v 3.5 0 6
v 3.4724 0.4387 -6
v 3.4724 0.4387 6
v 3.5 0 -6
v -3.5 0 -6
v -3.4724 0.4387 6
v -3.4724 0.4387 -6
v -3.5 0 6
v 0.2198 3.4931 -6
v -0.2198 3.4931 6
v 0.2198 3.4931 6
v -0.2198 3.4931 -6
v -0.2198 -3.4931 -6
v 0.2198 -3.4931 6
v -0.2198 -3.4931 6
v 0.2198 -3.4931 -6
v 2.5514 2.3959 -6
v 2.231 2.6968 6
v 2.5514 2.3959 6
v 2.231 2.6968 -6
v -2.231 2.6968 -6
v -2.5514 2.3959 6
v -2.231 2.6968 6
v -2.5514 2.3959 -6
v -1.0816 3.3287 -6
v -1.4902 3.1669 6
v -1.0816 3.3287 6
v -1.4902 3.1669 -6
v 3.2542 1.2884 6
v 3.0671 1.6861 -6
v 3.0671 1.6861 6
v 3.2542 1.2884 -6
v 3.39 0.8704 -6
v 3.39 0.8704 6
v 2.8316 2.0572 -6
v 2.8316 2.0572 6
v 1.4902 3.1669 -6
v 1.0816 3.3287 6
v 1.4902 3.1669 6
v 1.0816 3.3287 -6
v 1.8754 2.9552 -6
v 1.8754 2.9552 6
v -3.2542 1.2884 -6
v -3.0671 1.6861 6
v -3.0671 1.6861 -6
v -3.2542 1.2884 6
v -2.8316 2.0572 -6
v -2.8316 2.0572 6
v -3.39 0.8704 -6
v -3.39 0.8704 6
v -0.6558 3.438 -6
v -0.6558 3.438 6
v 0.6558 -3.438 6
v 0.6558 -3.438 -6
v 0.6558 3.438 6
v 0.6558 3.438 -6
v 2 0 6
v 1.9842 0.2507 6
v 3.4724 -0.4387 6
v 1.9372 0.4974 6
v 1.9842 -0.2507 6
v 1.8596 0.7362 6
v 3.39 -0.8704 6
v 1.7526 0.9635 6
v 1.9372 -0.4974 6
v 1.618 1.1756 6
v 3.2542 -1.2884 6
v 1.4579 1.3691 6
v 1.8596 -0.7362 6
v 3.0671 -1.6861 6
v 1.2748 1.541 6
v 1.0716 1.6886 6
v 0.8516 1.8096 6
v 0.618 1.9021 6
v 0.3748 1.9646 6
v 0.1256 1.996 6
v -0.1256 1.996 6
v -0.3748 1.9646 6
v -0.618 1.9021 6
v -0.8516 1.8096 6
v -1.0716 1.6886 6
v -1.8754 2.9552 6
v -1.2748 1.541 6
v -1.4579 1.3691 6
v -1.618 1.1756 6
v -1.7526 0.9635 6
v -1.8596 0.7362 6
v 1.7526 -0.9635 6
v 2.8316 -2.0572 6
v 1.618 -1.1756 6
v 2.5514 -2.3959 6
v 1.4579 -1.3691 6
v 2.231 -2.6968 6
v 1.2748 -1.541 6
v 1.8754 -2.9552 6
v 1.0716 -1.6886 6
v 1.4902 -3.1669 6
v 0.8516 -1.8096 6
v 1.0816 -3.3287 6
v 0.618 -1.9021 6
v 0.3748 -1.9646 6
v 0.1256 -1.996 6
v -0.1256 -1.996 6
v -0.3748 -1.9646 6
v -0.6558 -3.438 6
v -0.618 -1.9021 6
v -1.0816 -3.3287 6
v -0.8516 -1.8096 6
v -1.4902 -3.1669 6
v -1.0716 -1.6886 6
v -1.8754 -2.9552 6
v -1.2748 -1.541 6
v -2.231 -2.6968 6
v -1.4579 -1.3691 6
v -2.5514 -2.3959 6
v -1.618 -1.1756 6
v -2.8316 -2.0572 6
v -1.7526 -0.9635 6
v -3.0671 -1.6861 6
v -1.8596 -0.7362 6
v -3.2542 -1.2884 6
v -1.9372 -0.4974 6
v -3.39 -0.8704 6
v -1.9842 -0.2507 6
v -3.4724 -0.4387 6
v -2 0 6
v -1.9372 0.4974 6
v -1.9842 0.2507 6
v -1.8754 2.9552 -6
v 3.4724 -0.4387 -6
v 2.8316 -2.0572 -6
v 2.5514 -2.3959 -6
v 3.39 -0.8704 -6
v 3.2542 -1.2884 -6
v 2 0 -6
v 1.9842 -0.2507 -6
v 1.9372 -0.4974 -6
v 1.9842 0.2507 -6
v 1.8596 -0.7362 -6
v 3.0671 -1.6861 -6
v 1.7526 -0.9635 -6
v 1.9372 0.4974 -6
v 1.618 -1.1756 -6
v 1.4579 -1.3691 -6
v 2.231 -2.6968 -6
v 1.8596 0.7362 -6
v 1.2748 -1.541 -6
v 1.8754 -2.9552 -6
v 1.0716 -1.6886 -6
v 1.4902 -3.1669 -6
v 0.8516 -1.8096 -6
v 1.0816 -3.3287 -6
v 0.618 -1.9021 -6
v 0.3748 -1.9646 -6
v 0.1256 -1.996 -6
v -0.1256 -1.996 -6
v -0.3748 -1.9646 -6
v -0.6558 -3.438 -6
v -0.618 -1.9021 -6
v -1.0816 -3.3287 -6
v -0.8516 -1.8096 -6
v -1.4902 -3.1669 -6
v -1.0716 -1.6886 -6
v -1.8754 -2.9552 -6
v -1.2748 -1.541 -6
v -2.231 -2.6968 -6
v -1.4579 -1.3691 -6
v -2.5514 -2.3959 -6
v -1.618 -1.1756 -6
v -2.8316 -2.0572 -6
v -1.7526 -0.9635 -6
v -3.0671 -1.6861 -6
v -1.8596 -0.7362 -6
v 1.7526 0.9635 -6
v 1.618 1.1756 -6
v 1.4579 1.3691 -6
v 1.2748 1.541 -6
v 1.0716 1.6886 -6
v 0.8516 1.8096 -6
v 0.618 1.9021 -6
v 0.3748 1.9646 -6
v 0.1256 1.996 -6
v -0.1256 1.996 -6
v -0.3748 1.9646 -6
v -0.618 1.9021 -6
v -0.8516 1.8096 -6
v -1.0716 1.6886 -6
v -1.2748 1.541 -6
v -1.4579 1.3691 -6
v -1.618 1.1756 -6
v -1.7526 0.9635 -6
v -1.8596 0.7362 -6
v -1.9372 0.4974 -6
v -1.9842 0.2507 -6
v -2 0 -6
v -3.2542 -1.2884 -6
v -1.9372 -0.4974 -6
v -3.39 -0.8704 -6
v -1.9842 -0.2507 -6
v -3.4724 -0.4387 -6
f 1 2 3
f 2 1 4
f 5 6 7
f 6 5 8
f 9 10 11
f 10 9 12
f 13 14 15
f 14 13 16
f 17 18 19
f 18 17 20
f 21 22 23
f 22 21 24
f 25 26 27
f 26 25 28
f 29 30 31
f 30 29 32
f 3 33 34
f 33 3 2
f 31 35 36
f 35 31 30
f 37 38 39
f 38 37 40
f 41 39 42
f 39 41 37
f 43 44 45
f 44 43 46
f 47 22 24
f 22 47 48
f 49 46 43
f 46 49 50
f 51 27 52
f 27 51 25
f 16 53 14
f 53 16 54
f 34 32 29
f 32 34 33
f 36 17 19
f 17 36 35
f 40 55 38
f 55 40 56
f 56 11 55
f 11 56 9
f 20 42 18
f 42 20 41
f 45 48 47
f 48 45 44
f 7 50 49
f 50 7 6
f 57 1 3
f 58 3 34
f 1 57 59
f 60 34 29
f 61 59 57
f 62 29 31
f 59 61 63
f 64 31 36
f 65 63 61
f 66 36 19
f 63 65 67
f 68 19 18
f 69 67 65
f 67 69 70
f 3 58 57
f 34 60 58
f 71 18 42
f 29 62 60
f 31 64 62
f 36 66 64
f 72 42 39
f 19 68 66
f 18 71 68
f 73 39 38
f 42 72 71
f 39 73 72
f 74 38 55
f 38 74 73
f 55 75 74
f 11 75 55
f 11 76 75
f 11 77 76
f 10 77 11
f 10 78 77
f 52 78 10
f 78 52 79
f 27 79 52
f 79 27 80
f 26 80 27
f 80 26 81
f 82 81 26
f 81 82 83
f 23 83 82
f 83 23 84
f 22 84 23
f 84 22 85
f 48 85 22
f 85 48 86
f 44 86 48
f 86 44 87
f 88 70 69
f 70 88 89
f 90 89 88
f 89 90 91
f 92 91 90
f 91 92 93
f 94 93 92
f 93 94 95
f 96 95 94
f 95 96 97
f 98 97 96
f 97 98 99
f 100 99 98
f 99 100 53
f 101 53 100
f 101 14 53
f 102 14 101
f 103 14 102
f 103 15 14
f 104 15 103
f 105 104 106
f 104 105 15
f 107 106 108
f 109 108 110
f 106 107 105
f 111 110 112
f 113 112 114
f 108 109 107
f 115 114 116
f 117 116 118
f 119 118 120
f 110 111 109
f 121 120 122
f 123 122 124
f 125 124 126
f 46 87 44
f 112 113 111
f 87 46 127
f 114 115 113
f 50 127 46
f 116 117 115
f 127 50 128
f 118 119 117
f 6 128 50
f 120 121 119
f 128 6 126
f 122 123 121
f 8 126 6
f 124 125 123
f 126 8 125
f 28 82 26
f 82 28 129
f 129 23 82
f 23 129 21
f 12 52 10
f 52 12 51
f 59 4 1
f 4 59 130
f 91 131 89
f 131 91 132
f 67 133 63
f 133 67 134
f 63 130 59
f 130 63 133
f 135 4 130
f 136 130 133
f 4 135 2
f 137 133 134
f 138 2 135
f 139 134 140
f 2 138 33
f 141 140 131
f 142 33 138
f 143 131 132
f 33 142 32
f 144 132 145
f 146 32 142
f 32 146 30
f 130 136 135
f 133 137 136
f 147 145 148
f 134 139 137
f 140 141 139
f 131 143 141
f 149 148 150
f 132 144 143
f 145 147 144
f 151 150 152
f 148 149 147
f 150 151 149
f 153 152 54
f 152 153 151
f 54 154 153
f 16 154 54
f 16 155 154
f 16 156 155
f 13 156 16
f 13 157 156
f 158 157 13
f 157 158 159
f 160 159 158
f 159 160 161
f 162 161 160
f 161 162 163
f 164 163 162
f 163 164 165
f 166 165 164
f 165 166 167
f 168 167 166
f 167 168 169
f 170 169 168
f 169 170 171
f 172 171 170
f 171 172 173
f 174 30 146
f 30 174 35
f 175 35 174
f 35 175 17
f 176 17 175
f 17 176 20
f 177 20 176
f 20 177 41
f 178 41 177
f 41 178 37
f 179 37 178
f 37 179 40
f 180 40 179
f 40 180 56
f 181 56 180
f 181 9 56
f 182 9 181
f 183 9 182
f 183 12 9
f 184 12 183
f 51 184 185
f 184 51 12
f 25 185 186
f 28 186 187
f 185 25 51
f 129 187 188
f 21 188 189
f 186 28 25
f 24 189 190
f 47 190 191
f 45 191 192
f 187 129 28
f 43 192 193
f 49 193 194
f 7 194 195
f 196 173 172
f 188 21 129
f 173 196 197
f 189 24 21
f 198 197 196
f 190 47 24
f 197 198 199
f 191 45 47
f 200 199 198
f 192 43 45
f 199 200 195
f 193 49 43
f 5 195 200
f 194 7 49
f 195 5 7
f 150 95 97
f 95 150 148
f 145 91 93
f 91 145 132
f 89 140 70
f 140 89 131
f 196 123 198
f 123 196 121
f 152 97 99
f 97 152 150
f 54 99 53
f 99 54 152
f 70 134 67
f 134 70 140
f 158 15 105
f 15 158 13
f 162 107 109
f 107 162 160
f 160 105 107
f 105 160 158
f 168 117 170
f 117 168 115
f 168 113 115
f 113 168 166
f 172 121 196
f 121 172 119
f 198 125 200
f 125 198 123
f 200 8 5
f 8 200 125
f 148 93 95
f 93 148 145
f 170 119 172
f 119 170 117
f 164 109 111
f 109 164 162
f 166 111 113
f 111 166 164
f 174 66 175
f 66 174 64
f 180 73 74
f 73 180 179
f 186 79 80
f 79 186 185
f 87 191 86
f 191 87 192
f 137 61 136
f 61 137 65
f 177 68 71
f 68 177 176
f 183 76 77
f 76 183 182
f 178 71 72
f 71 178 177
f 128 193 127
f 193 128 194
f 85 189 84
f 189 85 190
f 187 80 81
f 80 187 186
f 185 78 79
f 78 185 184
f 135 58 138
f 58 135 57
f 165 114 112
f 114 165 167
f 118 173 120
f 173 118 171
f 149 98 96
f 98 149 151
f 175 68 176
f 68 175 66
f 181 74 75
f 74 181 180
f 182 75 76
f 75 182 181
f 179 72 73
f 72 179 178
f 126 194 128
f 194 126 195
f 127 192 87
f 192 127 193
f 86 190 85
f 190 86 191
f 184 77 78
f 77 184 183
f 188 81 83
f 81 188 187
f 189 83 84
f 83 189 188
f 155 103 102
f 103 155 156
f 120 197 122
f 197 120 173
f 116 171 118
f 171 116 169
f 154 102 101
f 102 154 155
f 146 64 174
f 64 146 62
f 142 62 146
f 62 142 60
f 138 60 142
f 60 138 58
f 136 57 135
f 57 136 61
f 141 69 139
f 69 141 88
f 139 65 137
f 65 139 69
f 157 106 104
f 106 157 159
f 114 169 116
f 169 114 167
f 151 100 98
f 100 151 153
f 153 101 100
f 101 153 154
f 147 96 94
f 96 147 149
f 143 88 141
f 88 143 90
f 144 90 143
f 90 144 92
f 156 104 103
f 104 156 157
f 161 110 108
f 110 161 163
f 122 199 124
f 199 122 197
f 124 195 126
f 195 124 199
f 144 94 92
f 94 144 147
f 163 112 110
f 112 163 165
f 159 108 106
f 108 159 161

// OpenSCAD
$fn = 50;


difference() {
	union() {
		translate(v = [0, 0, -6.0000000000]) {
			cylinder(h = 12, r = 3.5000000000);
		}
	}
	union() {
		translate(v = [0, 0, -100.0000000000]) {
			cylinder(h = 200, r = 2);
		}
	}
}
